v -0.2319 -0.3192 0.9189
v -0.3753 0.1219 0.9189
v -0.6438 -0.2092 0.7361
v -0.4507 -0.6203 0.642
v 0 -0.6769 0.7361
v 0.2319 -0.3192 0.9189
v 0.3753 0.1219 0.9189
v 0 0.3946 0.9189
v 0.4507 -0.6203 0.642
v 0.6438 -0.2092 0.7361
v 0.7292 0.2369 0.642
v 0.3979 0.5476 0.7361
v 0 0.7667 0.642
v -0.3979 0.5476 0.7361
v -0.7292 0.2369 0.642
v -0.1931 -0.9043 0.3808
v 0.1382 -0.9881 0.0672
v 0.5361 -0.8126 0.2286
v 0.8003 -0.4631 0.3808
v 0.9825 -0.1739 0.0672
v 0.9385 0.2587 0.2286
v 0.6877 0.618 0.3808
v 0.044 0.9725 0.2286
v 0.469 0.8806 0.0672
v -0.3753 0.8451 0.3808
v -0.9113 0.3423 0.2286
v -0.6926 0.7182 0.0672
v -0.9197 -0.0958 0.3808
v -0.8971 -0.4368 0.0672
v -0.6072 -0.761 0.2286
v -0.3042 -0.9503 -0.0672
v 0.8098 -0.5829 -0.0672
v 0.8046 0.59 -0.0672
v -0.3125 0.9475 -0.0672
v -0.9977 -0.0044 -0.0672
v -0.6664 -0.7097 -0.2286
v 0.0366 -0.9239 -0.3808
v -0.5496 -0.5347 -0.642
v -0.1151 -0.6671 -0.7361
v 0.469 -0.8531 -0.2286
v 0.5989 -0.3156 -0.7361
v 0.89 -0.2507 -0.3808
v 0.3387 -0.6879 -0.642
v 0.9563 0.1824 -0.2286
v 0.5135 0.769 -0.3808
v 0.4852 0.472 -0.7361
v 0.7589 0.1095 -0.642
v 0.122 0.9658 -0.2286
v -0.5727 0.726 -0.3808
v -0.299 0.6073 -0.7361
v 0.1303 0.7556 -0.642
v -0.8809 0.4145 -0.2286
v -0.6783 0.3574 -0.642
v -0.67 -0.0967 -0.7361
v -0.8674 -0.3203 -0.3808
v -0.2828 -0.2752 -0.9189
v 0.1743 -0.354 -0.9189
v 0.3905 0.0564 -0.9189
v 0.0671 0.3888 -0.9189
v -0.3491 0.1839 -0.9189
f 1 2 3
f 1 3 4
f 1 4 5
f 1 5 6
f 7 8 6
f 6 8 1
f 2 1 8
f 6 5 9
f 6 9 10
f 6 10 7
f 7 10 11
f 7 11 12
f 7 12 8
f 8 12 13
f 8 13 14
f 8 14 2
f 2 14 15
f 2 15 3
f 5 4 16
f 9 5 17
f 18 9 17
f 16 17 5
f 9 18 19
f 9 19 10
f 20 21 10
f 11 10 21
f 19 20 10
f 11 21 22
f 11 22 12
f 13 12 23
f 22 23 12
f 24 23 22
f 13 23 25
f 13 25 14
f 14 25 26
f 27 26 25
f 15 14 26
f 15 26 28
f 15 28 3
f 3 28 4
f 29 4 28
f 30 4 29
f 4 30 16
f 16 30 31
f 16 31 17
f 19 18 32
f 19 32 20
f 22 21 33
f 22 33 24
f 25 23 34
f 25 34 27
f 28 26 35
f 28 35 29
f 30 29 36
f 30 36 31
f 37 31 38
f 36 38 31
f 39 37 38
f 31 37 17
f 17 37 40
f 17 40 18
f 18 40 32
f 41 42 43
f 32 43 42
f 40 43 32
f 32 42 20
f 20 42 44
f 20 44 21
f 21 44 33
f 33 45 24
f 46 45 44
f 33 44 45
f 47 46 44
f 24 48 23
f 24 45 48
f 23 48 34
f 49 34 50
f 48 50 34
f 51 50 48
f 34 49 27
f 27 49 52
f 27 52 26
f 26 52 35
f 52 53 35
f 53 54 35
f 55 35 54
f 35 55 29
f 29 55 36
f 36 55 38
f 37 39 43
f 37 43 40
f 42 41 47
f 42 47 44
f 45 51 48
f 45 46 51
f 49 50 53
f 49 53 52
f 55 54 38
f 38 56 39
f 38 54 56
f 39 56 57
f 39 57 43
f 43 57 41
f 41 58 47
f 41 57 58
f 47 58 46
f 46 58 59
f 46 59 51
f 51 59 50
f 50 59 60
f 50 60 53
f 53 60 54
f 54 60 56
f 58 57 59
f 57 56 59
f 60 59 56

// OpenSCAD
polyhedron( points = [[-0.231928373403986, -0.319222026068237, 0.918861237220413], [0.231928379804499, -0.319222026068237, 0.918861237220413], [0.375267999517353, 0.121931961693057, 0.918861237220413], [3.23568722093728e-09, 0.394580120432229, 0.918861237220413], [-0.375267993094941, 0.12193196176045, 0.918861237220413], [3.17620919516554e-09, -0.676926467699922, 0.736050274554174], [0.450671920143217, -0.620296680289295, 0.641970638494408], [0.643795329771059, -0.209181783650271, 0.736050274554174], [0.729202482684133, 0.236932246387086, 0.641970638494408], [0.397887396887381, 0.54764501327684, 0.736050274554174], [3.30884992843349e-09, 0.76672885931797, 0.641970638494408], [-0.397887390349608, 0.547645013376565, 0.736050274554174], [-0.729202476139105, 0.236932246502002, 0.641970638271425], [-0.643795323426428, -0.209181783553948, 0.73605027453158], [-0.450671913798261, -0.620296680122935, 0.641970638271425], [-0.193123406351725, -0.904255620261434, 0.380820922381897], [0.800319784127725, -0.463101630804572, 0.38082092056002], [0.68774824046876, 0.618043068954559, 0.380820922419919], [-0.375267992575146, 0.845073250989924, 0.380820920693667], [-0.919676611181197, -0.0957590779954663, 0.380820922656718], [-0.607196370401693, -0.760956953928726, 0.228596873497293], [-0.304150691109496, -0.950250655224205, -0.0671974779660251], [0.138191679454798, -0.988122975754301, 0.0671974729260272], [0.536079073032323, -0.8126266994615, 0.228596873595802], [0.809754344574759, -0.582908102006321, -0.0671974773234491], [0.982464370884716, -0.173918698826224, 0.0671974719036684], [0.938511461024328, 0.258726031399489, 0.228596873003828], [0.804606406459227, 0.589993637064358, -0.0671974766239577], [0.469004700260409, 0.880635306139228, 0.067197472930137], [0.0439529139794226, 0.97252817825117, 0.228596873584169], [-0.312480236426498, 0.947544221755672, -0.0671974763183828], [-0.692603519943219, 0.718181245456629, 0.0671974711714984], [-0.911347061256298, 0.342329434275009, 0.228596872272289], [-0.997729813840292, -0.00437910478477534, -0.0671974760030343], [-0.897057214264802, -0.43677488741002, 0.0671974731274523], [-0.666414720883123, -0.70967199100051, -0.228596878641269], [0.0365989580234368, -0.923923907319195, -0.380820926304468], [0.469004703291903, -0.85309878347242, -0.228596878346075], [0.890013537880495, -0.250700512454442, -0.380820925803953], [0.956275583298537, 0.182427954203376, -0.228596879591703], [0.513459663143631, 0.768982450723203, -0.380820925802288], [0.122006114284064, 0.965845465327749, -0.22859688020609], [-0.572678004308907, 0.725957800667046, -0.38082092713878], [-0.880871647231602, 0.414497360195972, -0.228596881775498], [-0.867394154475413, -0.320315863437493, -0.380820928300977], [-0.549556554868732, -0.534659452200485, -0.641970641465497], [-0.115070207085969, -0.667074418517459, -0.736050276789979], [0.338669039000035, -0.68787821907027, -0.641970638106599], [0.598866808282975, -0.315575612865036, -0.73605027336359], [0.758865550236591, 0.109527329792012, -0.641970632048259], [0.485190260952312, 0.472037944690242, -0.736050266499015], [0.130335674029321, 0.755569840234669, -0.641970635654369], [-0.299002722481308, 0.607311110049946, -0.736050270553814], [-0.678313675910166, 0.357440491036801, -0.641970639417352], [-0.669984127289162, -0.0966990563073301, -0.736050274062464], [-0.28281717201008, -0.275150704789057, -0.918861229355753], [0.174288566738052, -0.354001350613142, -0.918861199833984], [0.390533478148327, 0.0563658341185886, -0.91886122191518], [0.0670743287620287, 0.388837289798106, -0.91886104259406], [-0.349079384759411, 0.183949058087279, -0.918861429794936]], faces = [[0, 4, 13], [0, 13, 14], [0, 14, 5], [0, 5, 1], [0, 1, 2, 3, 4], [1, 5, 6], [1, 6, 7], [1, 7, 2], [2, 7, 8], [2, 8, 9], [2, 9, 3], [3, 9, 10], [3, 10, 11], [3, 11, 4], [4, 11, 12], [4, 12, 13], [5, 14, 15], [5, 15, 22, 23, 6], [6, 23, 16], [6, 16, 7], [7, 16, 25, 26, 8], [8, 26, 17], [8, 17, 9], [9, 17, 28, 29, 10], [10, 29, 18], [10, 18, 11], [11, 18, 31, 32, 12], [12, 32, 19], [12, 19, 13], [13, 19, 34, 20, 14], [14, 20, 15], [15, 20, 21], [15, 21, 22], [16, 23, 24], [16, 24, 25], [17, 26, 27], [17, 27, 28], [18, 29, 30], [18, 30, 31], [19, 32, 33], [19, 33, 34], [20, 34, 35], [20, 35, 21], [21, 35, 45, 46, 36], [21, 36, 22], [22, 36, 37], [22, 37, 23], [23, 37, 24], [24, 37, 47, 48, 38], [24, 38, 25], [25, 38, 39], [25, 39, 26], [26, 39, 27], [27, 40, 28], [27, 39, 49, 50, 40], [28, 41, 29], [28, 40, 41], [29, 41, 30], [30, 41, 51, 52, 42], [30, 42, 31], [31, 42, 43], [31, 43, 32], [32, 43, 33], [33, 43, 53, 54, 44], [33, 44, 34], [34, 44, 35], [35, 44, 45], [36, 46, 47], [36, 47, 37], [38, 48, 49], [38, 49, 39], [40, 51, 41], [40, 50, 51], [42, 52, 53], [42, 53, 43], [44, 54, 45], [45, 55, 46], [45, 54, 55], [46, 55, 56], [46, 56, 47], [47, 56, 48], [48, 57, 49], [48, 56, 57], [49, 57, 50], [50, 57, 58], [50, 58, 51], [51, 58, 52], [52, 58, 59], [52, 59, 53], [53, 59, 54], [54, 59, 55], [55, 59, 58, 57, 56]]);
